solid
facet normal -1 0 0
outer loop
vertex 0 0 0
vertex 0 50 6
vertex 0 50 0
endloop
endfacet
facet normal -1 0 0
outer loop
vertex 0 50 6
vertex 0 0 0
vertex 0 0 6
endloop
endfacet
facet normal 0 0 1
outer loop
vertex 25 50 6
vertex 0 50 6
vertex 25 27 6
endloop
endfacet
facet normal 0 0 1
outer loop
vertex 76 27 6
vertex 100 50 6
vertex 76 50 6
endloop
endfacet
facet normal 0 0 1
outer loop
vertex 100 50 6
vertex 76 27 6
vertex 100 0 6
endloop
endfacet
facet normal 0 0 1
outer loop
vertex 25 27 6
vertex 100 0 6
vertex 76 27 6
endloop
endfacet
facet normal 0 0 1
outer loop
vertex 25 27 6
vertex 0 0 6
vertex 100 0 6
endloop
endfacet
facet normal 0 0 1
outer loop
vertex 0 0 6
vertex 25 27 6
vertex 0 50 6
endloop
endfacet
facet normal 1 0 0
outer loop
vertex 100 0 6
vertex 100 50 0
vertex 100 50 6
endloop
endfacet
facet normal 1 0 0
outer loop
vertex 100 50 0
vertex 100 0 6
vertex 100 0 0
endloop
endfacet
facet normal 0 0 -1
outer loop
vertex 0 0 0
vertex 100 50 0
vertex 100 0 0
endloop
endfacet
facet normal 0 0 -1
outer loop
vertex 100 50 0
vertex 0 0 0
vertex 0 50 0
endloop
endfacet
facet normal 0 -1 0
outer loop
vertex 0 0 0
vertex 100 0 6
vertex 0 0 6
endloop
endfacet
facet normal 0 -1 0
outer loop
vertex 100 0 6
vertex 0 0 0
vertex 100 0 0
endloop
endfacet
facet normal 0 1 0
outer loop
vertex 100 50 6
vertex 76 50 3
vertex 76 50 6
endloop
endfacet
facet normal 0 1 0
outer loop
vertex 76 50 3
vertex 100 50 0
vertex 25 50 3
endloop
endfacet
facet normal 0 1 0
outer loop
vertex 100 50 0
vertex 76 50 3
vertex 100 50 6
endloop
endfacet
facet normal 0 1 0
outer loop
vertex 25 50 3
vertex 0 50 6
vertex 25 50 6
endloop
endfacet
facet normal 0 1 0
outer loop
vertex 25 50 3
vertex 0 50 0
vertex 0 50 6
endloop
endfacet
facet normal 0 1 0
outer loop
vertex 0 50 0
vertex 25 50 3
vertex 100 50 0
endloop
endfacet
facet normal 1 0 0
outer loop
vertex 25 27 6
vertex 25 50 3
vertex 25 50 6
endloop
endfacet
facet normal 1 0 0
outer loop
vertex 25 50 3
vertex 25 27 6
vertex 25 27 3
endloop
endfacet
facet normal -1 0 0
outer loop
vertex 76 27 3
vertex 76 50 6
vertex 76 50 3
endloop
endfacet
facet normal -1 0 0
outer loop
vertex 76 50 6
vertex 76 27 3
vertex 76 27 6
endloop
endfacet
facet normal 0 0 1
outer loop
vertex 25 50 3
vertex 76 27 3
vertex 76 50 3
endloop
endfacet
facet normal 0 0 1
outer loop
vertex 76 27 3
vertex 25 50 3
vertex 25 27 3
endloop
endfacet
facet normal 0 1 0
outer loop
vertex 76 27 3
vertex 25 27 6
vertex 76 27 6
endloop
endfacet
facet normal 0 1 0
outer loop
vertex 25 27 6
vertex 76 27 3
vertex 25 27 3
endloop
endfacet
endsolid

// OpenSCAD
//cutting aid for HU 02 glass filter

difference() {
 cube([100, 50, 6]);
 translate([25, 27, 3]) cube([51, 50, 3]);    
}
